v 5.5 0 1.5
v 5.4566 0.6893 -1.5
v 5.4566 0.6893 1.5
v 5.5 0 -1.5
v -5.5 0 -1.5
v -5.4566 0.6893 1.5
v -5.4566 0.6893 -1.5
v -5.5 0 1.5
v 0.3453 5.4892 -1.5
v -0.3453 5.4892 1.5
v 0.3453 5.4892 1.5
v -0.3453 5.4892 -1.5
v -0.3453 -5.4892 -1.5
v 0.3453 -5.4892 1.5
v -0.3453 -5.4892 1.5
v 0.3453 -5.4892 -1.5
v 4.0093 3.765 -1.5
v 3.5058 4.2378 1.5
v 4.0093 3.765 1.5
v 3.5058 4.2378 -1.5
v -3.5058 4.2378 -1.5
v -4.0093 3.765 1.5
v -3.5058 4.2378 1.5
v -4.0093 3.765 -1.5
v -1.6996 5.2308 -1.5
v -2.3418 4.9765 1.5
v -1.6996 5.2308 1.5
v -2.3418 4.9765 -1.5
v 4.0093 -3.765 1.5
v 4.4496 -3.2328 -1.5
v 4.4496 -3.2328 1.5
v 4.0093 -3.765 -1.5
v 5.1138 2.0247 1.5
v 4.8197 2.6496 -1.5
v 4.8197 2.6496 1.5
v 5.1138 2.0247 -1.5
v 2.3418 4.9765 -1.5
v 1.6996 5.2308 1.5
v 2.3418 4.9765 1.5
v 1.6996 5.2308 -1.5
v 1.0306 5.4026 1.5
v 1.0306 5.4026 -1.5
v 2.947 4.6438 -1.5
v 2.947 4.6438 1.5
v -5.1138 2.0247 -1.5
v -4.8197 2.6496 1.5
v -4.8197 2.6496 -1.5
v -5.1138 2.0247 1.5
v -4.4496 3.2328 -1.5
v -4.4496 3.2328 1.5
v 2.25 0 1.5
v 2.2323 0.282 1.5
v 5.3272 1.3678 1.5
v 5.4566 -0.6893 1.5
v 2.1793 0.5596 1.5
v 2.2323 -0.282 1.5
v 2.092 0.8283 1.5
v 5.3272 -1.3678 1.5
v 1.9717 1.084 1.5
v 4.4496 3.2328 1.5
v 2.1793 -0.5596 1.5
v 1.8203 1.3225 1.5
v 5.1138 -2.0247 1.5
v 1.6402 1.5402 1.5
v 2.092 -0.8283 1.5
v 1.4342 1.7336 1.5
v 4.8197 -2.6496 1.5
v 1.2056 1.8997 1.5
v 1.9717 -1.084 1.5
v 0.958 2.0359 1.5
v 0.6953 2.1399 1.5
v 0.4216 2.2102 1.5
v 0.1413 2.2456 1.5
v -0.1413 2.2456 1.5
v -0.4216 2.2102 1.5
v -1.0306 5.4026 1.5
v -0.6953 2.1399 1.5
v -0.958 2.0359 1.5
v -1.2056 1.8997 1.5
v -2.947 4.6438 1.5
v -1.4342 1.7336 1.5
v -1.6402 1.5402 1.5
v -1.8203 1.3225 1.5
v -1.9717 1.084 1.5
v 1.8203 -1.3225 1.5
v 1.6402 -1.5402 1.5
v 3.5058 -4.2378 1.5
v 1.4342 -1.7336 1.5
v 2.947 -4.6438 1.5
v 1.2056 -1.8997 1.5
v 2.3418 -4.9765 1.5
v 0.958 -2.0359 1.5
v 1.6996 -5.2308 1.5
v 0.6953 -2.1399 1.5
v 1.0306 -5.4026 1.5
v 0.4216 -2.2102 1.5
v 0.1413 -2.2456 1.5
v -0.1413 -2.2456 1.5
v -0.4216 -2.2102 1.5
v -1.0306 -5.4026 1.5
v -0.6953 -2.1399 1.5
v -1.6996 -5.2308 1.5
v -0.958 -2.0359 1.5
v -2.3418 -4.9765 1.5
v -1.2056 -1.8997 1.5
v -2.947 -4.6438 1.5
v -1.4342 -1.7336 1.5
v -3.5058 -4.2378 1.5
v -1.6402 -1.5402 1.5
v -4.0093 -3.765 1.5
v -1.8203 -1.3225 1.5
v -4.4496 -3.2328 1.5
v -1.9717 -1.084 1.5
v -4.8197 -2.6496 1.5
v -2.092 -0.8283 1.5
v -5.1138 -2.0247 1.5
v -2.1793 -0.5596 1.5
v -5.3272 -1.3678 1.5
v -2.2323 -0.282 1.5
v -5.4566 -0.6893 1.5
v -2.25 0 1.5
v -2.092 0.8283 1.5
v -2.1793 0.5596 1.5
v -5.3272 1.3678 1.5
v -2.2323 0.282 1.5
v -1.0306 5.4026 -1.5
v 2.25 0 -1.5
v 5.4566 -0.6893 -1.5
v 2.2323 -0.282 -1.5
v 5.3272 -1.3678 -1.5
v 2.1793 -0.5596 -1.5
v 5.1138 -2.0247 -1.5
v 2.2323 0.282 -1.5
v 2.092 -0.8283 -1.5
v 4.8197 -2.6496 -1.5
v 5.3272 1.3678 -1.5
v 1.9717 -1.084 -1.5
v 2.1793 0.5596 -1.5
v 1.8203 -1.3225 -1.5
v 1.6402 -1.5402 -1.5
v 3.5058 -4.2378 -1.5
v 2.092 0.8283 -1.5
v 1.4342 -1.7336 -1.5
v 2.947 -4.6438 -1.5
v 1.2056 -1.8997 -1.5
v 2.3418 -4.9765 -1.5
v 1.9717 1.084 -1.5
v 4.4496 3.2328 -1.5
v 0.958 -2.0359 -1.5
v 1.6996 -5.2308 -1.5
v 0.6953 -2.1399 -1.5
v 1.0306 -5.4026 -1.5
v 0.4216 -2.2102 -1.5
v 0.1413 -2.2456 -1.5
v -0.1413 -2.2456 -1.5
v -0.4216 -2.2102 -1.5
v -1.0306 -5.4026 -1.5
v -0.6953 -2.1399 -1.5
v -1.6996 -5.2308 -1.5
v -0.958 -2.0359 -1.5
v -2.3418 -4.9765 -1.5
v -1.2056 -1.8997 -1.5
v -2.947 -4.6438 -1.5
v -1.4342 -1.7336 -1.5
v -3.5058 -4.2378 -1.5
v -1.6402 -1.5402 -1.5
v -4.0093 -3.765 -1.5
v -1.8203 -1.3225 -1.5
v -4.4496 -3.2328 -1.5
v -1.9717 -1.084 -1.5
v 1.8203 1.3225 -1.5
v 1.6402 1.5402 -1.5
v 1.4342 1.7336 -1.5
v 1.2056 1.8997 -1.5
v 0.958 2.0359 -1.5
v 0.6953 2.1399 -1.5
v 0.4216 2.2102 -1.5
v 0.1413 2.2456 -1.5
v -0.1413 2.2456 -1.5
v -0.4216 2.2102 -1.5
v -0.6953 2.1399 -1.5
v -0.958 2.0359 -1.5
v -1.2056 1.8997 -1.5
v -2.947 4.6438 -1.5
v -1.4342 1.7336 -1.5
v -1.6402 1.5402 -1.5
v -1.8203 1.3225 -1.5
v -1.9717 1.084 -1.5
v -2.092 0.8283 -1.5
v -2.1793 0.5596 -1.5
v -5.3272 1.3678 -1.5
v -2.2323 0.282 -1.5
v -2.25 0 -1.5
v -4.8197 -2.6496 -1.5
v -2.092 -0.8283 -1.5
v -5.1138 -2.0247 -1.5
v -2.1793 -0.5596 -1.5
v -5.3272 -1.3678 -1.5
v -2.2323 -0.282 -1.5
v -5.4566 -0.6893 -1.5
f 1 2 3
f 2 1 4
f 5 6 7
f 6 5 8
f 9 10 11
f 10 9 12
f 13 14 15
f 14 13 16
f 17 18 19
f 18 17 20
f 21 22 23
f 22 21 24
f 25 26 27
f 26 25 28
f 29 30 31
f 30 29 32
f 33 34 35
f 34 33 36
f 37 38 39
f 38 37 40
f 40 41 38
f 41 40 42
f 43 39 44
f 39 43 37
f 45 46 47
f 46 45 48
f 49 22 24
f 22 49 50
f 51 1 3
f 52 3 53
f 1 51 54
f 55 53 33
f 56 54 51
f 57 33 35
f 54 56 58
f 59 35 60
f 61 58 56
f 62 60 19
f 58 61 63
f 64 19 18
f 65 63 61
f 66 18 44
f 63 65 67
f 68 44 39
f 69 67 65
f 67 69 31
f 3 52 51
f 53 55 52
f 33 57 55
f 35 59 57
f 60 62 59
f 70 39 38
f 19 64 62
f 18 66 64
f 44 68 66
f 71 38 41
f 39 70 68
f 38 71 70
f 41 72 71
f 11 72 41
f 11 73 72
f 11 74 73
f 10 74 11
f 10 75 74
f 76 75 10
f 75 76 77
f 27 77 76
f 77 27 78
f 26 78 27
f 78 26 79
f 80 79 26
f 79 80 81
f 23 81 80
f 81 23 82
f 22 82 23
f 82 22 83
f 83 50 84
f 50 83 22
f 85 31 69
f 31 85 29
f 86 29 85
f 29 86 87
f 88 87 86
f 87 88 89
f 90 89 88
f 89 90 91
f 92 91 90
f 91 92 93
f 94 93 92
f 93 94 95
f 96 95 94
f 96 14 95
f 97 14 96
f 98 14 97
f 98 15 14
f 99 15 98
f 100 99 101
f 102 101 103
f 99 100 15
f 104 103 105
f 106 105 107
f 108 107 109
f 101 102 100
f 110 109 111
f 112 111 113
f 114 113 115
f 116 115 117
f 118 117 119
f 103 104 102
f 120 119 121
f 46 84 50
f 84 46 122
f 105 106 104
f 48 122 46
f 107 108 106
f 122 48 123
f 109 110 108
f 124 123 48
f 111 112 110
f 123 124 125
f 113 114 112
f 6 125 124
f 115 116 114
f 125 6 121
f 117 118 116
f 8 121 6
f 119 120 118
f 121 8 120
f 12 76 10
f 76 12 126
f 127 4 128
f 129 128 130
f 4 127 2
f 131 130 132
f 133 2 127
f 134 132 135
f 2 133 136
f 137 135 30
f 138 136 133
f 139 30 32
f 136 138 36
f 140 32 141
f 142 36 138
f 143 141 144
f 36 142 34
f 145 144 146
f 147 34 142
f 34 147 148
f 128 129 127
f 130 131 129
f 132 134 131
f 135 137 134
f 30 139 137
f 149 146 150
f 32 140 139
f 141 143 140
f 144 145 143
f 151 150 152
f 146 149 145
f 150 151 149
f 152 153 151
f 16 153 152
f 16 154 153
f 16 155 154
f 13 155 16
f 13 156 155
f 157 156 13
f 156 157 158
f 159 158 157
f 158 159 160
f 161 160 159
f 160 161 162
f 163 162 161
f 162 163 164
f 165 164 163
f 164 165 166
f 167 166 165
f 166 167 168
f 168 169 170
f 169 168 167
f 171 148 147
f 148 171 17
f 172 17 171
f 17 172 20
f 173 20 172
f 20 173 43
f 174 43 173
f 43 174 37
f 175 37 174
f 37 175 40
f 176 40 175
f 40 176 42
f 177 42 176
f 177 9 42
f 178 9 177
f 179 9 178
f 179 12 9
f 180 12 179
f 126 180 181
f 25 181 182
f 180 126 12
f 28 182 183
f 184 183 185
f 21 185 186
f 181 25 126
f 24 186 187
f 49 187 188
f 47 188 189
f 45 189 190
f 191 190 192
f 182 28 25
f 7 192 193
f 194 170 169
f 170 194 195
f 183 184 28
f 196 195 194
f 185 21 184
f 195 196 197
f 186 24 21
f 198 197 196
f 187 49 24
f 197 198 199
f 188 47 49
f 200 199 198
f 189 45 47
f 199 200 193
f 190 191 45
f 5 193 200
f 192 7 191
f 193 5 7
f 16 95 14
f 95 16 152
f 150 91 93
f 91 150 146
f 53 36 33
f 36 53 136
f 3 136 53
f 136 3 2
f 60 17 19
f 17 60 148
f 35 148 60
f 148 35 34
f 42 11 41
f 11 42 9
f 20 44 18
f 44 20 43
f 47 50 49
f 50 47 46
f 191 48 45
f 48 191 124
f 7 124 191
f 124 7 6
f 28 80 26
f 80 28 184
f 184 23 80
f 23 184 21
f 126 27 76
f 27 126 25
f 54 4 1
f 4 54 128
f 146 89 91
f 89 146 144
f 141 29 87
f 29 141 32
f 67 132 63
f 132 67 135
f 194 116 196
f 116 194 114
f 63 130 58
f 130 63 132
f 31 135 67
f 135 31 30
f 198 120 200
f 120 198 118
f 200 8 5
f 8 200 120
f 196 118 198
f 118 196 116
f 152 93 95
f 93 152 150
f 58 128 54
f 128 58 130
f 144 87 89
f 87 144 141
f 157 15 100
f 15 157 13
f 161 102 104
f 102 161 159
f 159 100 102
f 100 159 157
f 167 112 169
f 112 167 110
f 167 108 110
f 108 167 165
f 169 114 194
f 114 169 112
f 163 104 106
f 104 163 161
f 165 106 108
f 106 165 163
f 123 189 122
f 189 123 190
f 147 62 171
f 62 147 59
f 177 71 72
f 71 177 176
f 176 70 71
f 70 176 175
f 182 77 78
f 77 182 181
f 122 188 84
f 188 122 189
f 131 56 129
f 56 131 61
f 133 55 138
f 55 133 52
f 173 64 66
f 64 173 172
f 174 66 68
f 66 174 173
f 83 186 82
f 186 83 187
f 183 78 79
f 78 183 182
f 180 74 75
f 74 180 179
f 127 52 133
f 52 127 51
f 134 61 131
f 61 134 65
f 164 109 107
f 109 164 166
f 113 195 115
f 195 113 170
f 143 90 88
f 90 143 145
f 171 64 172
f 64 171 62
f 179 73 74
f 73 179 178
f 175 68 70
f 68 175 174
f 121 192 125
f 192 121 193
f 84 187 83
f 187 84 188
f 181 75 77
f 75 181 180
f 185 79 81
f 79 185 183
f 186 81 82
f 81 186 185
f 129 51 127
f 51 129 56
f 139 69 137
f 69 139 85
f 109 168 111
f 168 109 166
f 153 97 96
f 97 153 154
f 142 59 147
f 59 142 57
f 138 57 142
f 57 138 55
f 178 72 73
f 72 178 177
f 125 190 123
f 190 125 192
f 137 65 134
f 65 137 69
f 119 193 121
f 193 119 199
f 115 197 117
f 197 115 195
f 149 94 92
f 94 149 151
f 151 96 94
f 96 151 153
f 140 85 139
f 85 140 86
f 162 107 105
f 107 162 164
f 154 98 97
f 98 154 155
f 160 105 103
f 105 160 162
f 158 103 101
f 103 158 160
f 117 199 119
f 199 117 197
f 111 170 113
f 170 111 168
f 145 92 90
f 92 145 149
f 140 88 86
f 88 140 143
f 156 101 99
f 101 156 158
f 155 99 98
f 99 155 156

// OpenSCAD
$fn = 50;


difference() {
	union() {
		translate(v = [0, 0, -1.5000000000]) {
			cylinder(h = 3, r = 5.5000000000);
		}
	}
	union() {
		translate(v = [0, 0, -100.0000000000]) {
			cylinder(h = 200, r = 2.2500000000);
		}
	}
}
